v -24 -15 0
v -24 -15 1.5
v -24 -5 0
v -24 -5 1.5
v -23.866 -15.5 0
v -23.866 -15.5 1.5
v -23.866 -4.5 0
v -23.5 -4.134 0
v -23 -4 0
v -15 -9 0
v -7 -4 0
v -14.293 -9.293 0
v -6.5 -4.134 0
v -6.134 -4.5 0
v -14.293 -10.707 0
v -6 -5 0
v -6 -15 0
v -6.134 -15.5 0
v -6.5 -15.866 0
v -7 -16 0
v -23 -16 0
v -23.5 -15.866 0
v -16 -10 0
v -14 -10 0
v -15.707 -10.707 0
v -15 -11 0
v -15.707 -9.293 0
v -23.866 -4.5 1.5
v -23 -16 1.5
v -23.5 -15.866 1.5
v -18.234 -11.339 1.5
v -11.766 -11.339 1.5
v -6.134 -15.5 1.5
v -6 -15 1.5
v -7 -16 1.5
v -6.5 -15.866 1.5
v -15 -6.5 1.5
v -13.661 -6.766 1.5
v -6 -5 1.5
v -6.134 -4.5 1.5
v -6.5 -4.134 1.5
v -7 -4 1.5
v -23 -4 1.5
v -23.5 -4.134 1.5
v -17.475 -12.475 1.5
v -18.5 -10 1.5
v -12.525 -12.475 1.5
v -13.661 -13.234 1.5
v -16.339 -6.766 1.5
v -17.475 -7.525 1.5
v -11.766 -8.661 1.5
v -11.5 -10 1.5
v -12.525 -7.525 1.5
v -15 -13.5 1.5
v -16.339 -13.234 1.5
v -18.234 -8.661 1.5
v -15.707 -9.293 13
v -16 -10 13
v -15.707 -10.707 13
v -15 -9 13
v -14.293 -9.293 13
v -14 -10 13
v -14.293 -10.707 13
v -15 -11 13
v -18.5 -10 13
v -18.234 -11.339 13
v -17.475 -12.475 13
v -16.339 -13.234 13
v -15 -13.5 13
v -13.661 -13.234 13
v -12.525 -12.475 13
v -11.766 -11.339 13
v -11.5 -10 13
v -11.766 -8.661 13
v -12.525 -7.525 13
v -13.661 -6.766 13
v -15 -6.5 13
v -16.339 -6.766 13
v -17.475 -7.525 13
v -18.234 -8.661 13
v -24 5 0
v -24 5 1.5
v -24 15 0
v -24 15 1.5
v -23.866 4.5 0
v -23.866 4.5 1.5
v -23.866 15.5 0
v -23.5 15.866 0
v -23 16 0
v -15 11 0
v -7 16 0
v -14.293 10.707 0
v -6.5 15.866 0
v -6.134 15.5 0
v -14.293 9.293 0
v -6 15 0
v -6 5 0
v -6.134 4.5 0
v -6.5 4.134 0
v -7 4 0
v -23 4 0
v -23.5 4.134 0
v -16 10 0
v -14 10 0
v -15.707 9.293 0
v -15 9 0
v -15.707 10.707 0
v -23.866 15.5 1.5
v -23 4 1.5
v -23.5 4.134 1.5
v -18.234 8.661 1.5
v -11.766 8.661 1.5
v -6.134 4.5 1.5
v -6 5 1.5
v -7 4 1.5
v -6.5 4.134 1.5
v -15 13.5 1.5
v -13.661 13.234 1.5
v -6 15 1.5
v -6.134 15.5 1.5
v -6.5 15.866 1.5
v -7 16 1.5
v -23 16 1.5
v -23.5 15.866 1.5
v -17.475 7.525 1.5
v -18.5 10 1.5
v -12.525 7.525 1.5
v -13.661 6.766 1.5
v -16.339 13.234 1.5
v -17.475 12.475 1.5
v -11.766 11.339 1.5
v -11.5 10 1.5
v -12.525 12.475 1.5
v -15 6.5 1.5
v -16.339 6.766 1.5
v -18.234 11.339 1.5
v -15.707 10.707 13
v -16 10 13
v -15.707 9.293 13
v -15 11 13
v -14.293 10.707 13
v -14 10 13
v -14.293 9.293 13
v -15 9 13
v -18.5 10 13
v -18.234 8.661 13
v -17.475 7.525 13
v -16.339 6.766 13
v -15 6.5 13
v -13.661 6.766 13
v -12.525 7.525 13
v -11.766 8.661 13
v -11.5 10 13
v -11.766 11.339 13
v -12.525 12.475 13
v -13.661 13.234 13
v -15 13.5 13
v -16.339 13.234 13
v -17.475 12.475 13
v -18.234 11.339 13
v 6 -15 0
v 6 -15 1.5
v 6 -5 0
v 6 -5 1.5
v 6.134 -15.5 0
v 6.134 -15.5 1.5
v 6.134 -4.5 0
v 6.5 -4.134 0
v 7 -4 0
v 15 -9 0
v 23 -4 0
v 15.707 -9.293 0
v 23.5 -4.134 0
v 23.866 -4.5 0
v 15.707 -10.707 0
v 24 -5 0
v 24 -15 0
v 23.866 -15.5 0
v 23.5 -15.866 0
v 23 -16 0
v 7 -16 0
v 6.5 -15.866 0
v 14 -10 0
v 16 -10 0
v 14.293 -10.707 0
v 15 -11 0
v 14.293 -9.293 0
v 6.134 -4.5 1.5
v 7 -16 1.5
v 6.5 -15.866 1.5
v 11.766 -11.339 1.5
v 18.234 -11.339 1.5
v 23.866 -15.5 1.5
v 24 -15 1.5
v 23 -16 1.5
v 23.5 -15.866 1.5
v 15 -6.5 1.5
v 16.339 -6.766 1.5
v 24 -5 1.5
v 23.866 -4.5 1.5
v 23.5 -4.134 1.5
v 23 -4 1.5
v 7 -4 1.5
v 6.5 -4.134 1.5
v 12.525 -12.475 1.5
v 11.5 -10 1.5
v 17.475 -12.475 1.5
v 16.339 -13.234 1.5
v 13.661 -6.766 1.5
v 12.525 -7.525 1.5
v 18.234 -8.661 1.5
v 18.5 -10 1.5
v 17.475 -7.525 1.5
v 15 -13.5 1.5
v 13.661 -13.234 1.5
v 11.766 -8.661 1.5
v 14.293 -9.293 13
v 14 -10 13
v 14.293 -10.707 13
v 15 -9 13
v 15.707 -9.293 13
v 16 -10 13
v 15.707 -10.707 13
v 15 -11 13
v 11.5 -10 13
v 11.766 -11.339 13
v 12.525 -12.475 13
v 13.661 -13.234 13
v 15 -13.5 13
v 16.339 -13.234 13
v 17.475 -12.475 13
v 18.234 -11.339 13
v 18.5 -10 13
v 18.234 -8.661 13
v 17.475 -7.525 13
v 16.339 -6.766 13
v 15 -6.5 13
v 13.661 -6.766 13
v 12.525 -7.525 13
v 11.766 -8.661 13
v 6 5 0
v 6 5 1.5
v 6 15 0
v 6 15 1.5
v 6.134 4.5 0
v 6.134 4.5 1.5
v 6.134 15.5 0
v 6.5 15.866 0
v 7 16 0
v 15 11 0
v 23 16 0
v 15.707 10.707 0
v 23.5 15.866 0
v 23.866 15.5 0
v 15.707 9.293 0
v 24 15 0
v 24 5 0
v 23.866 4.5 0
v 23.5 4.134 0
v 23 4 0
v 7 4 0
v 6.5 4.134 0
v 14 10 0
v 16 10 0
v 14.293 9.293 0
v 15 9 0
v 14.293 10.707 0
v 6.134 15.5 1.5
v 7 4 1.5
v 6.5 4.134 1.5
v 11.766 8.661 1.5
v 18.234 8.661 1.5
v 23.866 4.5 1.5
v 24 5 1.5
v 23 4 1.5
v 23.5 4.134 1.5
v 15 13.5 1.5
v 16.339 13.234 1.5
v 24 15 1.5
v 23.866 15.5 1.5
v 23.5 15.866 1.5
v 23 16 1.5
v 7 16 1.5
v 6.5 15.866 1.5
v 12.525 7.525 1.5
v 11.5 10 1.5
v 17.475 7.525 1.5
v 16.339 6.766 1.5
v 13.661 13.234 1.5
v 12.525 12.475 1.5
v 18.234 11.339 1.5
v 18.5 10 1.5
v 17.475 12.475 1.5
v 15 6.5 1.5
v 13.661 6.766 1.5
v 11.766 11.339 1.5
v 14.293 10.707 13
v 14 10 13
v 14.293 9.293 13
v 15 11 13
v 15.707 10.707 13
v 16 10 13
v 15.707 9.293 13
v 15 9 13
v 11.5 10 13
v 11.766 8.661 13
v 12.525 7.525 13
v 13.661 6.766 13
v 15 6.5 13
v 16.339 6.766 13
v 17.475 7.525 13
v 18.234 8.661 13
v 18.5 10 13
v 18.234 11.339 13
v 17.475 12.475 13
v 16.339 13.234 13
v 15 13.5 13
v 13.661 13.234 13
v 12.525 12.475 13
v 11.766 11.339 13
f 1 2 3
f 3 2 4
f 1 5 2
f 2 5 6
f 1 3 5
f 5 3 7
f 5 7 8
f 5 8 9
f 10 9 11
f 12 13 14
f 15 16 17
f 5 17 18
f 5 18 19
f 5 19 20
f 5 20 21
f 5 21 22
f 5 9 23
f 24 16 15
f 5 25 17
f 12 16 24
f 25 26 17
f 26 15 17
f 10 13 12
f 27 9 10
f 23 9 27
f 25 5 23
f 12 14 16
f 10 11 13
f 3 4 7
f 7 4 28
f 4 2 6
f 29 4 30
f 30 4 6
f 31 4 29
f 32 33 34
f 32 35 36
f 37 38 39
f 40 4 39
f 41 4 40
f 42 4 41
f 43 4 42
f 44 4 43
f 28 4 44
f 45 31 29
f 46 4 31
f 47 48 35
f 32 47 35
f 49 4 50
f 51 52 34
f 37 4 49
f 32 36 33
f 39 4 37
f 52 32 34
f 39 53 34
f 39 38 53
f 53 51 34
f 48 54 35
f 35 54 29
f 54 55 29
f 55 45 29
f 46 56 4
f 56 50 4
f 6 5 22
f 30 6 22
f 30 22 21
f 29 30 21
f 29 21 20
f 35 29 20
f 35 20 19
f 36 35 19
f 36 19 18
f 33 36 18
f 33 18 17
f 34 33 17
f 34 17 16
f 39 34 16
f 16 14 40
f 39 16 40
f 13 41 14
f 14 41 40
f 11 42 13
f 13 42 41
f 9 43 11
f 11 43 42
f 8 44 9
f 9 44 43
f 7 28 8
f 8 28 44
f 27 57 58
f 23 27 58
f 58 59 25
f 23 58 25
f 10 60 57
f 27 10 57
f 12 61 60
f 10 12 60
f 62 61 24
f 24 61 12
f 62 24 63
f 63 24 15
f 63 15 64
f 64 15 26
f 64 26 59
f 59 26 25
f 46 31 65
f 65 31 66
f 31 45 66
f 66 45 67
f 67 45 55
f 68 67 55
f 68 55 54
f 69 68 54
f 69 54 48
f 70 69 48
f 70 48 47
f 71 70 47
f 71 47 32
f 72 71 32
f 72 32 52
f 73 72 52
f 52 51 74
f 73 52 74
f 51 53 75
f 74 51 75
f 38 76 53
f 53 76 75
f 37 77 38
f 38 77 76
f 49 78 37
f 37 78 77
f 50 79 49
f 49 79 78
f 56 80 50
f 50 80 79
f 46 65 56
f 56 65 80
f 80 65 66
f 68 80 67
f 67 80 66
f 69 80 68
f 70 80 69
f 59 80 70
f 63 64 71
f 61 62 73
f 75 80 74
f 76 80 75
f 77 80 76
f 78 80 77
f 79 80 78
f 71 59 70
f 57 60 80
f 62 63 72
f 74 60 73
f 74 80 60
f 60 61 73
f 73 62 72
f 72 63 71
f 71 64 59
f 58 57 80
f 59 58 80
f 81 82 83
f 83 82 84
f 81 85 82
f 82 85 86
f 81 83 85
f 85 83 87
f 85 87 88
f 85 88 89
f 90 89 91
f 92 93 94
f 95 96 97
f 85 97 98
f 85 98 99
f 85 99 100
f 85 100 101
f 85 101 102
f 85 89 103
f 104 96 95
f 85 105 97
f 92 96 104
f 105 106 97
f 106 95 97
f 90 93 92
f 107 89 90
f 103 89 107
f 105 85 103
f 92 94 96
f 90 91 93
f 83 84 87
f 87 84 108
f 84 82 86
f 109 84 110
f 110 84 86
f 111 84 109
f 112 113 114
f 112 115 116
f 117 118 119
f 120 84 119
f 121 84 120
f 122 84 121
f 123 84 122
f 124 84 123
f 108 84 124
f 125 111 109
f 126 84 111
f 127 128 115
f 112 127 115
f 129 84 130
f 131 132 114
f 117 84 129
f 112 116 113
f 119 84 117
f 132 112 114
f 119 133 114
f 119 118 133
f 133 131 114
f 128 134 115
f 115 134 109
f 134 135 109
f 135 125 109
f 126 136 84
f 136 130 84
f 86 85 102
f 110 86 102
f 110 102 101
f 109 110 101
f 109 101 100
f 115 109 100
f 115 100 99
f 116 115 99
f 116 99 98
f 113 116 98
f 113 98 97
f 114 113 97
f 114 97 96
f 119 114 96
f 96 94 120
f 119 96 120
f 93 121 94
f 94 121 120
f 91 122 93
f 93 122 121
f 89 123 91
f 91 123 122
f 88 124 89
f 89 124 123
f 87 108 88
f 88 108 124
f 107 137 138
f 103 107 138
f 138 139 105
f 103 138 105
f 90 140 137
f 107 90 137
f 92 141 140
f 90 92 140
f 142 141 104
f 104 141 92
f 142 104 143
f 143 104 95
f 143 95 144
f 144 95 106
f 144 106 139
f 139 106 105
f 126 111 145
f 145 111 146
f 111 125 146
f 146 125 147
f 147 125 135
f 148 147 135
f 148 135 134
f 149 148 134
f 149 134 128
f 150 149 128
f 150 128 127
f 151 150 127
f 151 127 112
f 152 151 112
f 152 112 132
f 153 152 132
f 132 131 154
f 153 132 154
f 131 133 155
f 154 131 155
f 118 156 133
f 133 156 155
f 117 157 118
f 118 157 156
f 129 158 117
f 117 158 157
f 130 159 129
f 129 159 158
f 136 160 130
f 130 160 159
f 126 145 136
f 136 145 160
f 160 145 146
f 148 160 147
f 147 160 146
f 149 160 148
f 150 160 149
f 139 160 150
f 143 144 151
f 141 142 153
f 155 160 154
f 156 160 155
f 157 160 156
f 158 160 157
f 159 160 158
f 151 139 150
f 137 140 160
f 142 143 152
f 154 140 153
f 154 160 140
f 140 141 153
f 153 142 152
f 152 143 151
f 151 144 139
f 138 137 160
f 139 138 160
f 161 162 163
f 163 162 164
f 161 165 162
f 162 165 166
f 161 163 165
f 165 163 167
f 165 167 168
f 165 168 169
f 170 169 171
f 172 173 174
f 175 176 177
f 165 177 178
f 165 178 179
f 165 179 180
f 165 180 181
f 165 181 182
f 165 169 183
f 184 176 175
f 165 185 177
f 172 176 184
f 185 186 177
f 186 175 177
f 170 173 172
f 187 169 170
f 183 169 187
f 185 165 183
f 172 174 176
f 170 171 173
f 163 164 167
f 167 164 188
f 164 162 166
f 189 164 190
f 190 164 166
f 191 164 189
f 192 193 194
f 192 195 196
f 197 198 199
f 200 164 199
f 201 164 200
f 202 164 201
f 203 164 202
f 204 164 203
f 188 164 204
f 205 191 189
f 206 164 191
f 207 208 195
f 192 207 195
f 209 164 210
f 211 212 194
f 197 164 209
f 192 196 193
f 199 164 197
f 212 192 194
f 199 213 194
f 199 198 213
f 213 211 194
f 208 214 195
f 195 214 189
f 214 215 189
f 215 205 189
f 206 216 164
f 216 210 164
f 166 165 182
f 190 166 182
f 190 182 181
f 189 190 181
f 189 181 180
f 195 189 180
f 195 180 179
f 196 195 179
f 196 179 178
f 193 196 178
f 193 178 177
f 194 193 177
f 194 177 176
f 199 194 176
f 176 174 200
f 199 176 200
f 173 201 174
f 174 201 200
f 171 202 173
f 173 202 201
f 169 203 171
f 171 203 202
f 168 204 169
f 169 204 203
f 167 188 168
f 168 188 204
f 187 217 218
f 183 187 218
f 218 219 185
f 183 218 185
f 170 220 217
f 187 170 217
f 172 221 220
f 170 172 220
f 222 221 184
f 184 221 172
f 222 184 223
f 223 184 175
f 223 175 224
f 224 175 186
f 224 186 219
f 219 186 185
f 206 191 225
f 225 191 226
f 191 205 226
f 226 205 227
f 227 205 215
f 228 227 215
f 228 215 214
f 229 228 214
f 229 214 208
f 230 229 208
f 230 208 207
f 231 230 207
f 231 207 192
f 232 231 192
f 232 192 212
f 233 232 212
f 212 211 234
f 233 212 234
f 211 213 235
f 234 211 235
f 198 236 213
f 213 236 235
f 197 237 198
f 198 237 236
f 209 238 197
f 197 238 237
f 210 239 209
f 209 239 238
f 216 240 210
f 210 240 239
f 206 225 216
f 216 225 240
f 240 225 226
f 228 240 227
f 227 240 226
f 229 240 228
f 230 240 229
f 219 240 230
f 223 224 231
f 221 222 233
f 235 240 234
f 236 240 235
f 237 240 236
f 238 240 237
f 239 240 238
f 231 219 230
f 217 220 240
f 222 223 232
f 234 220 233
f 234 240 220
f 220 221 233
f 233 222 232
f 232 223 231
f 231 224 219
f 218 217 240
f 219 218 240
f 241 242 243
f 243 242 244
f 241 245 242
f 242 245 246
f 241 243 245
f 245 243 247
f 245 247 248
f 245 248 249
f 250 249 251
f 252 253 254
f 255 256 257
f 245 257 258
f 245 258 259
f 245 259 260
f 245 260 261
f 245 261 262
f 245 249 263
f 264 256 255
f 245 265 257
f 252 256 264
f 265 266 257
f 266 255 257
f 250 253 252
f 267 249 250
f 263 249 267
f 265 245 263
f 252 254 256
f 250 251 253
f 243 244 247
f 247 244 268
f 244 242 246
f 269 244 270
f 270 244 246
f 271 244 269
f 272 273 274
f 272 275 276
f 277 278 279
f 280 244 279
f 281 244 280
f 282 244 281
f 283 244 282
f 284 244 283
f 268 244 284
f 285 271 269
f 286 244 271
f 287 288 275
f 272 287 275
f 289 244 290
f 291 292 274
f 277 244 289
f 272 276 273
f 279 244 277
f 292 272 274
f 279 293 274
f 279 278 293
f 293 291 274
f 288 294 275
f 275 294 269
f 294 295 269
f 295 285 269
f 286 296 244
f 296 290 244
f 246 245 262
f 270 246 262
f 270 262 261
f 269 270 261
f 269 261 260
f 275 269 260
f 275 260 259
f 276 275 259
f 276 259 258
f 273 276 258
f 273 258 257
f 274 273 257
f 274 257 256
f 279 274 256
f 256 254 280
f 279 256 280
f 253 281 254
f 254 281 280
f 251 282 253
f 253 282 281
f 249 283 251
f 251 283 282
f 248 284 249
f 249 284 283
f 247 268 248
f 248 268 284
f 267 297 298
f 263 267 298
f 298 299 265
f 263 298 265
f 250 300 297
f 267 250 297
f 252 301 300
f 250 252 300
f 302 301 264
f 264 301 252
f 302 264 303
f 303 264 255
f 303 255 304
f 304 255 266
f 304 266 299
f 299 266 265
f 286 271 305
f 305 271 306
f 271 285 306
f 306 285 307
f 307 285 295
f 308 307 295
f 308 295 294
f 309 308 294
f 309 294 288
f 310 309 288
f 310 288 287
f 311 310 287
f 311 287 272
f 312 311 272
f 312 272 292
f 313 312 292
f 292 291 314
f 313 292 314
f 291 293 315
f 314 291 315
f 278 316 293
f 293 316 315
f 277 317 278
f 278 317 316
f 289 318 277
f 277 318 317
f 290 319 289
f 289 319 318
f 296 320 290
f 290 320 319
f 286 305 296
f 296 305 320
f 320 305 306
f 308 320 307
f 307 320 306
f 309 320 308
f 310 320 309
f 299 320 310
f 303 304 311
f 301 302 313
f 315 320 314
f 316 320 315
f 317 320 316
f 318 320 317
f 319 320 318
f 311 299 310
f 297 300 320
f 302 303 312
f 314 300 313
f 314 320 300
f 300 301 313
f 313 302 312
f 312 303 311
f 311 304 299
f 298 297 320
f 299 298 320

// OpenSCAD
// Catalina model wing joiner plate
//
// (part missing from Dynam kit)
//
platelength = 18;
platewidth  = 12;
platethick  = 1.5;
postdia     = 7;
postholedia = 2.0;
postheight  = 13;    // Overall, incl plate thickness
cornerrad   = 1;

// Define plate with radius corners
module plate(l,w,t,r)
{
  translate([-l/2, -w/2+r, 0]) cube(size=[l, w-2*r, t]);
  translate([-l/2+r, -w/2, 0]) cube(size=[l-2*r, w, t]);
  for (xo = [-l/2+r, l/2-r])
  {
    for (yo = [-w/2+r, w/2-r])
      {
        translate([xo, yo, 0]) cylinder(r=r, h=t, $fn=12);
      }
  }
}

module WingJoinerPlate()
{
  difference()
  {
    union()
    {
      plate(platelength, platewidth, platethick, cornerrad);
      cylinder(r=postdia/2, h=postheight, $fn=16);
    }
    translate([0,0,-1])
      cylinder(r=postholedia/2, h=postheight+2, $fn=8);
  }
}

// Lay up 4 copies.
for (xo = [-15, 15])
{
  for (yo = [-10, 10])
    {
      translate([xo, yo, 0]) WingJoinerPlate();
    }
}
